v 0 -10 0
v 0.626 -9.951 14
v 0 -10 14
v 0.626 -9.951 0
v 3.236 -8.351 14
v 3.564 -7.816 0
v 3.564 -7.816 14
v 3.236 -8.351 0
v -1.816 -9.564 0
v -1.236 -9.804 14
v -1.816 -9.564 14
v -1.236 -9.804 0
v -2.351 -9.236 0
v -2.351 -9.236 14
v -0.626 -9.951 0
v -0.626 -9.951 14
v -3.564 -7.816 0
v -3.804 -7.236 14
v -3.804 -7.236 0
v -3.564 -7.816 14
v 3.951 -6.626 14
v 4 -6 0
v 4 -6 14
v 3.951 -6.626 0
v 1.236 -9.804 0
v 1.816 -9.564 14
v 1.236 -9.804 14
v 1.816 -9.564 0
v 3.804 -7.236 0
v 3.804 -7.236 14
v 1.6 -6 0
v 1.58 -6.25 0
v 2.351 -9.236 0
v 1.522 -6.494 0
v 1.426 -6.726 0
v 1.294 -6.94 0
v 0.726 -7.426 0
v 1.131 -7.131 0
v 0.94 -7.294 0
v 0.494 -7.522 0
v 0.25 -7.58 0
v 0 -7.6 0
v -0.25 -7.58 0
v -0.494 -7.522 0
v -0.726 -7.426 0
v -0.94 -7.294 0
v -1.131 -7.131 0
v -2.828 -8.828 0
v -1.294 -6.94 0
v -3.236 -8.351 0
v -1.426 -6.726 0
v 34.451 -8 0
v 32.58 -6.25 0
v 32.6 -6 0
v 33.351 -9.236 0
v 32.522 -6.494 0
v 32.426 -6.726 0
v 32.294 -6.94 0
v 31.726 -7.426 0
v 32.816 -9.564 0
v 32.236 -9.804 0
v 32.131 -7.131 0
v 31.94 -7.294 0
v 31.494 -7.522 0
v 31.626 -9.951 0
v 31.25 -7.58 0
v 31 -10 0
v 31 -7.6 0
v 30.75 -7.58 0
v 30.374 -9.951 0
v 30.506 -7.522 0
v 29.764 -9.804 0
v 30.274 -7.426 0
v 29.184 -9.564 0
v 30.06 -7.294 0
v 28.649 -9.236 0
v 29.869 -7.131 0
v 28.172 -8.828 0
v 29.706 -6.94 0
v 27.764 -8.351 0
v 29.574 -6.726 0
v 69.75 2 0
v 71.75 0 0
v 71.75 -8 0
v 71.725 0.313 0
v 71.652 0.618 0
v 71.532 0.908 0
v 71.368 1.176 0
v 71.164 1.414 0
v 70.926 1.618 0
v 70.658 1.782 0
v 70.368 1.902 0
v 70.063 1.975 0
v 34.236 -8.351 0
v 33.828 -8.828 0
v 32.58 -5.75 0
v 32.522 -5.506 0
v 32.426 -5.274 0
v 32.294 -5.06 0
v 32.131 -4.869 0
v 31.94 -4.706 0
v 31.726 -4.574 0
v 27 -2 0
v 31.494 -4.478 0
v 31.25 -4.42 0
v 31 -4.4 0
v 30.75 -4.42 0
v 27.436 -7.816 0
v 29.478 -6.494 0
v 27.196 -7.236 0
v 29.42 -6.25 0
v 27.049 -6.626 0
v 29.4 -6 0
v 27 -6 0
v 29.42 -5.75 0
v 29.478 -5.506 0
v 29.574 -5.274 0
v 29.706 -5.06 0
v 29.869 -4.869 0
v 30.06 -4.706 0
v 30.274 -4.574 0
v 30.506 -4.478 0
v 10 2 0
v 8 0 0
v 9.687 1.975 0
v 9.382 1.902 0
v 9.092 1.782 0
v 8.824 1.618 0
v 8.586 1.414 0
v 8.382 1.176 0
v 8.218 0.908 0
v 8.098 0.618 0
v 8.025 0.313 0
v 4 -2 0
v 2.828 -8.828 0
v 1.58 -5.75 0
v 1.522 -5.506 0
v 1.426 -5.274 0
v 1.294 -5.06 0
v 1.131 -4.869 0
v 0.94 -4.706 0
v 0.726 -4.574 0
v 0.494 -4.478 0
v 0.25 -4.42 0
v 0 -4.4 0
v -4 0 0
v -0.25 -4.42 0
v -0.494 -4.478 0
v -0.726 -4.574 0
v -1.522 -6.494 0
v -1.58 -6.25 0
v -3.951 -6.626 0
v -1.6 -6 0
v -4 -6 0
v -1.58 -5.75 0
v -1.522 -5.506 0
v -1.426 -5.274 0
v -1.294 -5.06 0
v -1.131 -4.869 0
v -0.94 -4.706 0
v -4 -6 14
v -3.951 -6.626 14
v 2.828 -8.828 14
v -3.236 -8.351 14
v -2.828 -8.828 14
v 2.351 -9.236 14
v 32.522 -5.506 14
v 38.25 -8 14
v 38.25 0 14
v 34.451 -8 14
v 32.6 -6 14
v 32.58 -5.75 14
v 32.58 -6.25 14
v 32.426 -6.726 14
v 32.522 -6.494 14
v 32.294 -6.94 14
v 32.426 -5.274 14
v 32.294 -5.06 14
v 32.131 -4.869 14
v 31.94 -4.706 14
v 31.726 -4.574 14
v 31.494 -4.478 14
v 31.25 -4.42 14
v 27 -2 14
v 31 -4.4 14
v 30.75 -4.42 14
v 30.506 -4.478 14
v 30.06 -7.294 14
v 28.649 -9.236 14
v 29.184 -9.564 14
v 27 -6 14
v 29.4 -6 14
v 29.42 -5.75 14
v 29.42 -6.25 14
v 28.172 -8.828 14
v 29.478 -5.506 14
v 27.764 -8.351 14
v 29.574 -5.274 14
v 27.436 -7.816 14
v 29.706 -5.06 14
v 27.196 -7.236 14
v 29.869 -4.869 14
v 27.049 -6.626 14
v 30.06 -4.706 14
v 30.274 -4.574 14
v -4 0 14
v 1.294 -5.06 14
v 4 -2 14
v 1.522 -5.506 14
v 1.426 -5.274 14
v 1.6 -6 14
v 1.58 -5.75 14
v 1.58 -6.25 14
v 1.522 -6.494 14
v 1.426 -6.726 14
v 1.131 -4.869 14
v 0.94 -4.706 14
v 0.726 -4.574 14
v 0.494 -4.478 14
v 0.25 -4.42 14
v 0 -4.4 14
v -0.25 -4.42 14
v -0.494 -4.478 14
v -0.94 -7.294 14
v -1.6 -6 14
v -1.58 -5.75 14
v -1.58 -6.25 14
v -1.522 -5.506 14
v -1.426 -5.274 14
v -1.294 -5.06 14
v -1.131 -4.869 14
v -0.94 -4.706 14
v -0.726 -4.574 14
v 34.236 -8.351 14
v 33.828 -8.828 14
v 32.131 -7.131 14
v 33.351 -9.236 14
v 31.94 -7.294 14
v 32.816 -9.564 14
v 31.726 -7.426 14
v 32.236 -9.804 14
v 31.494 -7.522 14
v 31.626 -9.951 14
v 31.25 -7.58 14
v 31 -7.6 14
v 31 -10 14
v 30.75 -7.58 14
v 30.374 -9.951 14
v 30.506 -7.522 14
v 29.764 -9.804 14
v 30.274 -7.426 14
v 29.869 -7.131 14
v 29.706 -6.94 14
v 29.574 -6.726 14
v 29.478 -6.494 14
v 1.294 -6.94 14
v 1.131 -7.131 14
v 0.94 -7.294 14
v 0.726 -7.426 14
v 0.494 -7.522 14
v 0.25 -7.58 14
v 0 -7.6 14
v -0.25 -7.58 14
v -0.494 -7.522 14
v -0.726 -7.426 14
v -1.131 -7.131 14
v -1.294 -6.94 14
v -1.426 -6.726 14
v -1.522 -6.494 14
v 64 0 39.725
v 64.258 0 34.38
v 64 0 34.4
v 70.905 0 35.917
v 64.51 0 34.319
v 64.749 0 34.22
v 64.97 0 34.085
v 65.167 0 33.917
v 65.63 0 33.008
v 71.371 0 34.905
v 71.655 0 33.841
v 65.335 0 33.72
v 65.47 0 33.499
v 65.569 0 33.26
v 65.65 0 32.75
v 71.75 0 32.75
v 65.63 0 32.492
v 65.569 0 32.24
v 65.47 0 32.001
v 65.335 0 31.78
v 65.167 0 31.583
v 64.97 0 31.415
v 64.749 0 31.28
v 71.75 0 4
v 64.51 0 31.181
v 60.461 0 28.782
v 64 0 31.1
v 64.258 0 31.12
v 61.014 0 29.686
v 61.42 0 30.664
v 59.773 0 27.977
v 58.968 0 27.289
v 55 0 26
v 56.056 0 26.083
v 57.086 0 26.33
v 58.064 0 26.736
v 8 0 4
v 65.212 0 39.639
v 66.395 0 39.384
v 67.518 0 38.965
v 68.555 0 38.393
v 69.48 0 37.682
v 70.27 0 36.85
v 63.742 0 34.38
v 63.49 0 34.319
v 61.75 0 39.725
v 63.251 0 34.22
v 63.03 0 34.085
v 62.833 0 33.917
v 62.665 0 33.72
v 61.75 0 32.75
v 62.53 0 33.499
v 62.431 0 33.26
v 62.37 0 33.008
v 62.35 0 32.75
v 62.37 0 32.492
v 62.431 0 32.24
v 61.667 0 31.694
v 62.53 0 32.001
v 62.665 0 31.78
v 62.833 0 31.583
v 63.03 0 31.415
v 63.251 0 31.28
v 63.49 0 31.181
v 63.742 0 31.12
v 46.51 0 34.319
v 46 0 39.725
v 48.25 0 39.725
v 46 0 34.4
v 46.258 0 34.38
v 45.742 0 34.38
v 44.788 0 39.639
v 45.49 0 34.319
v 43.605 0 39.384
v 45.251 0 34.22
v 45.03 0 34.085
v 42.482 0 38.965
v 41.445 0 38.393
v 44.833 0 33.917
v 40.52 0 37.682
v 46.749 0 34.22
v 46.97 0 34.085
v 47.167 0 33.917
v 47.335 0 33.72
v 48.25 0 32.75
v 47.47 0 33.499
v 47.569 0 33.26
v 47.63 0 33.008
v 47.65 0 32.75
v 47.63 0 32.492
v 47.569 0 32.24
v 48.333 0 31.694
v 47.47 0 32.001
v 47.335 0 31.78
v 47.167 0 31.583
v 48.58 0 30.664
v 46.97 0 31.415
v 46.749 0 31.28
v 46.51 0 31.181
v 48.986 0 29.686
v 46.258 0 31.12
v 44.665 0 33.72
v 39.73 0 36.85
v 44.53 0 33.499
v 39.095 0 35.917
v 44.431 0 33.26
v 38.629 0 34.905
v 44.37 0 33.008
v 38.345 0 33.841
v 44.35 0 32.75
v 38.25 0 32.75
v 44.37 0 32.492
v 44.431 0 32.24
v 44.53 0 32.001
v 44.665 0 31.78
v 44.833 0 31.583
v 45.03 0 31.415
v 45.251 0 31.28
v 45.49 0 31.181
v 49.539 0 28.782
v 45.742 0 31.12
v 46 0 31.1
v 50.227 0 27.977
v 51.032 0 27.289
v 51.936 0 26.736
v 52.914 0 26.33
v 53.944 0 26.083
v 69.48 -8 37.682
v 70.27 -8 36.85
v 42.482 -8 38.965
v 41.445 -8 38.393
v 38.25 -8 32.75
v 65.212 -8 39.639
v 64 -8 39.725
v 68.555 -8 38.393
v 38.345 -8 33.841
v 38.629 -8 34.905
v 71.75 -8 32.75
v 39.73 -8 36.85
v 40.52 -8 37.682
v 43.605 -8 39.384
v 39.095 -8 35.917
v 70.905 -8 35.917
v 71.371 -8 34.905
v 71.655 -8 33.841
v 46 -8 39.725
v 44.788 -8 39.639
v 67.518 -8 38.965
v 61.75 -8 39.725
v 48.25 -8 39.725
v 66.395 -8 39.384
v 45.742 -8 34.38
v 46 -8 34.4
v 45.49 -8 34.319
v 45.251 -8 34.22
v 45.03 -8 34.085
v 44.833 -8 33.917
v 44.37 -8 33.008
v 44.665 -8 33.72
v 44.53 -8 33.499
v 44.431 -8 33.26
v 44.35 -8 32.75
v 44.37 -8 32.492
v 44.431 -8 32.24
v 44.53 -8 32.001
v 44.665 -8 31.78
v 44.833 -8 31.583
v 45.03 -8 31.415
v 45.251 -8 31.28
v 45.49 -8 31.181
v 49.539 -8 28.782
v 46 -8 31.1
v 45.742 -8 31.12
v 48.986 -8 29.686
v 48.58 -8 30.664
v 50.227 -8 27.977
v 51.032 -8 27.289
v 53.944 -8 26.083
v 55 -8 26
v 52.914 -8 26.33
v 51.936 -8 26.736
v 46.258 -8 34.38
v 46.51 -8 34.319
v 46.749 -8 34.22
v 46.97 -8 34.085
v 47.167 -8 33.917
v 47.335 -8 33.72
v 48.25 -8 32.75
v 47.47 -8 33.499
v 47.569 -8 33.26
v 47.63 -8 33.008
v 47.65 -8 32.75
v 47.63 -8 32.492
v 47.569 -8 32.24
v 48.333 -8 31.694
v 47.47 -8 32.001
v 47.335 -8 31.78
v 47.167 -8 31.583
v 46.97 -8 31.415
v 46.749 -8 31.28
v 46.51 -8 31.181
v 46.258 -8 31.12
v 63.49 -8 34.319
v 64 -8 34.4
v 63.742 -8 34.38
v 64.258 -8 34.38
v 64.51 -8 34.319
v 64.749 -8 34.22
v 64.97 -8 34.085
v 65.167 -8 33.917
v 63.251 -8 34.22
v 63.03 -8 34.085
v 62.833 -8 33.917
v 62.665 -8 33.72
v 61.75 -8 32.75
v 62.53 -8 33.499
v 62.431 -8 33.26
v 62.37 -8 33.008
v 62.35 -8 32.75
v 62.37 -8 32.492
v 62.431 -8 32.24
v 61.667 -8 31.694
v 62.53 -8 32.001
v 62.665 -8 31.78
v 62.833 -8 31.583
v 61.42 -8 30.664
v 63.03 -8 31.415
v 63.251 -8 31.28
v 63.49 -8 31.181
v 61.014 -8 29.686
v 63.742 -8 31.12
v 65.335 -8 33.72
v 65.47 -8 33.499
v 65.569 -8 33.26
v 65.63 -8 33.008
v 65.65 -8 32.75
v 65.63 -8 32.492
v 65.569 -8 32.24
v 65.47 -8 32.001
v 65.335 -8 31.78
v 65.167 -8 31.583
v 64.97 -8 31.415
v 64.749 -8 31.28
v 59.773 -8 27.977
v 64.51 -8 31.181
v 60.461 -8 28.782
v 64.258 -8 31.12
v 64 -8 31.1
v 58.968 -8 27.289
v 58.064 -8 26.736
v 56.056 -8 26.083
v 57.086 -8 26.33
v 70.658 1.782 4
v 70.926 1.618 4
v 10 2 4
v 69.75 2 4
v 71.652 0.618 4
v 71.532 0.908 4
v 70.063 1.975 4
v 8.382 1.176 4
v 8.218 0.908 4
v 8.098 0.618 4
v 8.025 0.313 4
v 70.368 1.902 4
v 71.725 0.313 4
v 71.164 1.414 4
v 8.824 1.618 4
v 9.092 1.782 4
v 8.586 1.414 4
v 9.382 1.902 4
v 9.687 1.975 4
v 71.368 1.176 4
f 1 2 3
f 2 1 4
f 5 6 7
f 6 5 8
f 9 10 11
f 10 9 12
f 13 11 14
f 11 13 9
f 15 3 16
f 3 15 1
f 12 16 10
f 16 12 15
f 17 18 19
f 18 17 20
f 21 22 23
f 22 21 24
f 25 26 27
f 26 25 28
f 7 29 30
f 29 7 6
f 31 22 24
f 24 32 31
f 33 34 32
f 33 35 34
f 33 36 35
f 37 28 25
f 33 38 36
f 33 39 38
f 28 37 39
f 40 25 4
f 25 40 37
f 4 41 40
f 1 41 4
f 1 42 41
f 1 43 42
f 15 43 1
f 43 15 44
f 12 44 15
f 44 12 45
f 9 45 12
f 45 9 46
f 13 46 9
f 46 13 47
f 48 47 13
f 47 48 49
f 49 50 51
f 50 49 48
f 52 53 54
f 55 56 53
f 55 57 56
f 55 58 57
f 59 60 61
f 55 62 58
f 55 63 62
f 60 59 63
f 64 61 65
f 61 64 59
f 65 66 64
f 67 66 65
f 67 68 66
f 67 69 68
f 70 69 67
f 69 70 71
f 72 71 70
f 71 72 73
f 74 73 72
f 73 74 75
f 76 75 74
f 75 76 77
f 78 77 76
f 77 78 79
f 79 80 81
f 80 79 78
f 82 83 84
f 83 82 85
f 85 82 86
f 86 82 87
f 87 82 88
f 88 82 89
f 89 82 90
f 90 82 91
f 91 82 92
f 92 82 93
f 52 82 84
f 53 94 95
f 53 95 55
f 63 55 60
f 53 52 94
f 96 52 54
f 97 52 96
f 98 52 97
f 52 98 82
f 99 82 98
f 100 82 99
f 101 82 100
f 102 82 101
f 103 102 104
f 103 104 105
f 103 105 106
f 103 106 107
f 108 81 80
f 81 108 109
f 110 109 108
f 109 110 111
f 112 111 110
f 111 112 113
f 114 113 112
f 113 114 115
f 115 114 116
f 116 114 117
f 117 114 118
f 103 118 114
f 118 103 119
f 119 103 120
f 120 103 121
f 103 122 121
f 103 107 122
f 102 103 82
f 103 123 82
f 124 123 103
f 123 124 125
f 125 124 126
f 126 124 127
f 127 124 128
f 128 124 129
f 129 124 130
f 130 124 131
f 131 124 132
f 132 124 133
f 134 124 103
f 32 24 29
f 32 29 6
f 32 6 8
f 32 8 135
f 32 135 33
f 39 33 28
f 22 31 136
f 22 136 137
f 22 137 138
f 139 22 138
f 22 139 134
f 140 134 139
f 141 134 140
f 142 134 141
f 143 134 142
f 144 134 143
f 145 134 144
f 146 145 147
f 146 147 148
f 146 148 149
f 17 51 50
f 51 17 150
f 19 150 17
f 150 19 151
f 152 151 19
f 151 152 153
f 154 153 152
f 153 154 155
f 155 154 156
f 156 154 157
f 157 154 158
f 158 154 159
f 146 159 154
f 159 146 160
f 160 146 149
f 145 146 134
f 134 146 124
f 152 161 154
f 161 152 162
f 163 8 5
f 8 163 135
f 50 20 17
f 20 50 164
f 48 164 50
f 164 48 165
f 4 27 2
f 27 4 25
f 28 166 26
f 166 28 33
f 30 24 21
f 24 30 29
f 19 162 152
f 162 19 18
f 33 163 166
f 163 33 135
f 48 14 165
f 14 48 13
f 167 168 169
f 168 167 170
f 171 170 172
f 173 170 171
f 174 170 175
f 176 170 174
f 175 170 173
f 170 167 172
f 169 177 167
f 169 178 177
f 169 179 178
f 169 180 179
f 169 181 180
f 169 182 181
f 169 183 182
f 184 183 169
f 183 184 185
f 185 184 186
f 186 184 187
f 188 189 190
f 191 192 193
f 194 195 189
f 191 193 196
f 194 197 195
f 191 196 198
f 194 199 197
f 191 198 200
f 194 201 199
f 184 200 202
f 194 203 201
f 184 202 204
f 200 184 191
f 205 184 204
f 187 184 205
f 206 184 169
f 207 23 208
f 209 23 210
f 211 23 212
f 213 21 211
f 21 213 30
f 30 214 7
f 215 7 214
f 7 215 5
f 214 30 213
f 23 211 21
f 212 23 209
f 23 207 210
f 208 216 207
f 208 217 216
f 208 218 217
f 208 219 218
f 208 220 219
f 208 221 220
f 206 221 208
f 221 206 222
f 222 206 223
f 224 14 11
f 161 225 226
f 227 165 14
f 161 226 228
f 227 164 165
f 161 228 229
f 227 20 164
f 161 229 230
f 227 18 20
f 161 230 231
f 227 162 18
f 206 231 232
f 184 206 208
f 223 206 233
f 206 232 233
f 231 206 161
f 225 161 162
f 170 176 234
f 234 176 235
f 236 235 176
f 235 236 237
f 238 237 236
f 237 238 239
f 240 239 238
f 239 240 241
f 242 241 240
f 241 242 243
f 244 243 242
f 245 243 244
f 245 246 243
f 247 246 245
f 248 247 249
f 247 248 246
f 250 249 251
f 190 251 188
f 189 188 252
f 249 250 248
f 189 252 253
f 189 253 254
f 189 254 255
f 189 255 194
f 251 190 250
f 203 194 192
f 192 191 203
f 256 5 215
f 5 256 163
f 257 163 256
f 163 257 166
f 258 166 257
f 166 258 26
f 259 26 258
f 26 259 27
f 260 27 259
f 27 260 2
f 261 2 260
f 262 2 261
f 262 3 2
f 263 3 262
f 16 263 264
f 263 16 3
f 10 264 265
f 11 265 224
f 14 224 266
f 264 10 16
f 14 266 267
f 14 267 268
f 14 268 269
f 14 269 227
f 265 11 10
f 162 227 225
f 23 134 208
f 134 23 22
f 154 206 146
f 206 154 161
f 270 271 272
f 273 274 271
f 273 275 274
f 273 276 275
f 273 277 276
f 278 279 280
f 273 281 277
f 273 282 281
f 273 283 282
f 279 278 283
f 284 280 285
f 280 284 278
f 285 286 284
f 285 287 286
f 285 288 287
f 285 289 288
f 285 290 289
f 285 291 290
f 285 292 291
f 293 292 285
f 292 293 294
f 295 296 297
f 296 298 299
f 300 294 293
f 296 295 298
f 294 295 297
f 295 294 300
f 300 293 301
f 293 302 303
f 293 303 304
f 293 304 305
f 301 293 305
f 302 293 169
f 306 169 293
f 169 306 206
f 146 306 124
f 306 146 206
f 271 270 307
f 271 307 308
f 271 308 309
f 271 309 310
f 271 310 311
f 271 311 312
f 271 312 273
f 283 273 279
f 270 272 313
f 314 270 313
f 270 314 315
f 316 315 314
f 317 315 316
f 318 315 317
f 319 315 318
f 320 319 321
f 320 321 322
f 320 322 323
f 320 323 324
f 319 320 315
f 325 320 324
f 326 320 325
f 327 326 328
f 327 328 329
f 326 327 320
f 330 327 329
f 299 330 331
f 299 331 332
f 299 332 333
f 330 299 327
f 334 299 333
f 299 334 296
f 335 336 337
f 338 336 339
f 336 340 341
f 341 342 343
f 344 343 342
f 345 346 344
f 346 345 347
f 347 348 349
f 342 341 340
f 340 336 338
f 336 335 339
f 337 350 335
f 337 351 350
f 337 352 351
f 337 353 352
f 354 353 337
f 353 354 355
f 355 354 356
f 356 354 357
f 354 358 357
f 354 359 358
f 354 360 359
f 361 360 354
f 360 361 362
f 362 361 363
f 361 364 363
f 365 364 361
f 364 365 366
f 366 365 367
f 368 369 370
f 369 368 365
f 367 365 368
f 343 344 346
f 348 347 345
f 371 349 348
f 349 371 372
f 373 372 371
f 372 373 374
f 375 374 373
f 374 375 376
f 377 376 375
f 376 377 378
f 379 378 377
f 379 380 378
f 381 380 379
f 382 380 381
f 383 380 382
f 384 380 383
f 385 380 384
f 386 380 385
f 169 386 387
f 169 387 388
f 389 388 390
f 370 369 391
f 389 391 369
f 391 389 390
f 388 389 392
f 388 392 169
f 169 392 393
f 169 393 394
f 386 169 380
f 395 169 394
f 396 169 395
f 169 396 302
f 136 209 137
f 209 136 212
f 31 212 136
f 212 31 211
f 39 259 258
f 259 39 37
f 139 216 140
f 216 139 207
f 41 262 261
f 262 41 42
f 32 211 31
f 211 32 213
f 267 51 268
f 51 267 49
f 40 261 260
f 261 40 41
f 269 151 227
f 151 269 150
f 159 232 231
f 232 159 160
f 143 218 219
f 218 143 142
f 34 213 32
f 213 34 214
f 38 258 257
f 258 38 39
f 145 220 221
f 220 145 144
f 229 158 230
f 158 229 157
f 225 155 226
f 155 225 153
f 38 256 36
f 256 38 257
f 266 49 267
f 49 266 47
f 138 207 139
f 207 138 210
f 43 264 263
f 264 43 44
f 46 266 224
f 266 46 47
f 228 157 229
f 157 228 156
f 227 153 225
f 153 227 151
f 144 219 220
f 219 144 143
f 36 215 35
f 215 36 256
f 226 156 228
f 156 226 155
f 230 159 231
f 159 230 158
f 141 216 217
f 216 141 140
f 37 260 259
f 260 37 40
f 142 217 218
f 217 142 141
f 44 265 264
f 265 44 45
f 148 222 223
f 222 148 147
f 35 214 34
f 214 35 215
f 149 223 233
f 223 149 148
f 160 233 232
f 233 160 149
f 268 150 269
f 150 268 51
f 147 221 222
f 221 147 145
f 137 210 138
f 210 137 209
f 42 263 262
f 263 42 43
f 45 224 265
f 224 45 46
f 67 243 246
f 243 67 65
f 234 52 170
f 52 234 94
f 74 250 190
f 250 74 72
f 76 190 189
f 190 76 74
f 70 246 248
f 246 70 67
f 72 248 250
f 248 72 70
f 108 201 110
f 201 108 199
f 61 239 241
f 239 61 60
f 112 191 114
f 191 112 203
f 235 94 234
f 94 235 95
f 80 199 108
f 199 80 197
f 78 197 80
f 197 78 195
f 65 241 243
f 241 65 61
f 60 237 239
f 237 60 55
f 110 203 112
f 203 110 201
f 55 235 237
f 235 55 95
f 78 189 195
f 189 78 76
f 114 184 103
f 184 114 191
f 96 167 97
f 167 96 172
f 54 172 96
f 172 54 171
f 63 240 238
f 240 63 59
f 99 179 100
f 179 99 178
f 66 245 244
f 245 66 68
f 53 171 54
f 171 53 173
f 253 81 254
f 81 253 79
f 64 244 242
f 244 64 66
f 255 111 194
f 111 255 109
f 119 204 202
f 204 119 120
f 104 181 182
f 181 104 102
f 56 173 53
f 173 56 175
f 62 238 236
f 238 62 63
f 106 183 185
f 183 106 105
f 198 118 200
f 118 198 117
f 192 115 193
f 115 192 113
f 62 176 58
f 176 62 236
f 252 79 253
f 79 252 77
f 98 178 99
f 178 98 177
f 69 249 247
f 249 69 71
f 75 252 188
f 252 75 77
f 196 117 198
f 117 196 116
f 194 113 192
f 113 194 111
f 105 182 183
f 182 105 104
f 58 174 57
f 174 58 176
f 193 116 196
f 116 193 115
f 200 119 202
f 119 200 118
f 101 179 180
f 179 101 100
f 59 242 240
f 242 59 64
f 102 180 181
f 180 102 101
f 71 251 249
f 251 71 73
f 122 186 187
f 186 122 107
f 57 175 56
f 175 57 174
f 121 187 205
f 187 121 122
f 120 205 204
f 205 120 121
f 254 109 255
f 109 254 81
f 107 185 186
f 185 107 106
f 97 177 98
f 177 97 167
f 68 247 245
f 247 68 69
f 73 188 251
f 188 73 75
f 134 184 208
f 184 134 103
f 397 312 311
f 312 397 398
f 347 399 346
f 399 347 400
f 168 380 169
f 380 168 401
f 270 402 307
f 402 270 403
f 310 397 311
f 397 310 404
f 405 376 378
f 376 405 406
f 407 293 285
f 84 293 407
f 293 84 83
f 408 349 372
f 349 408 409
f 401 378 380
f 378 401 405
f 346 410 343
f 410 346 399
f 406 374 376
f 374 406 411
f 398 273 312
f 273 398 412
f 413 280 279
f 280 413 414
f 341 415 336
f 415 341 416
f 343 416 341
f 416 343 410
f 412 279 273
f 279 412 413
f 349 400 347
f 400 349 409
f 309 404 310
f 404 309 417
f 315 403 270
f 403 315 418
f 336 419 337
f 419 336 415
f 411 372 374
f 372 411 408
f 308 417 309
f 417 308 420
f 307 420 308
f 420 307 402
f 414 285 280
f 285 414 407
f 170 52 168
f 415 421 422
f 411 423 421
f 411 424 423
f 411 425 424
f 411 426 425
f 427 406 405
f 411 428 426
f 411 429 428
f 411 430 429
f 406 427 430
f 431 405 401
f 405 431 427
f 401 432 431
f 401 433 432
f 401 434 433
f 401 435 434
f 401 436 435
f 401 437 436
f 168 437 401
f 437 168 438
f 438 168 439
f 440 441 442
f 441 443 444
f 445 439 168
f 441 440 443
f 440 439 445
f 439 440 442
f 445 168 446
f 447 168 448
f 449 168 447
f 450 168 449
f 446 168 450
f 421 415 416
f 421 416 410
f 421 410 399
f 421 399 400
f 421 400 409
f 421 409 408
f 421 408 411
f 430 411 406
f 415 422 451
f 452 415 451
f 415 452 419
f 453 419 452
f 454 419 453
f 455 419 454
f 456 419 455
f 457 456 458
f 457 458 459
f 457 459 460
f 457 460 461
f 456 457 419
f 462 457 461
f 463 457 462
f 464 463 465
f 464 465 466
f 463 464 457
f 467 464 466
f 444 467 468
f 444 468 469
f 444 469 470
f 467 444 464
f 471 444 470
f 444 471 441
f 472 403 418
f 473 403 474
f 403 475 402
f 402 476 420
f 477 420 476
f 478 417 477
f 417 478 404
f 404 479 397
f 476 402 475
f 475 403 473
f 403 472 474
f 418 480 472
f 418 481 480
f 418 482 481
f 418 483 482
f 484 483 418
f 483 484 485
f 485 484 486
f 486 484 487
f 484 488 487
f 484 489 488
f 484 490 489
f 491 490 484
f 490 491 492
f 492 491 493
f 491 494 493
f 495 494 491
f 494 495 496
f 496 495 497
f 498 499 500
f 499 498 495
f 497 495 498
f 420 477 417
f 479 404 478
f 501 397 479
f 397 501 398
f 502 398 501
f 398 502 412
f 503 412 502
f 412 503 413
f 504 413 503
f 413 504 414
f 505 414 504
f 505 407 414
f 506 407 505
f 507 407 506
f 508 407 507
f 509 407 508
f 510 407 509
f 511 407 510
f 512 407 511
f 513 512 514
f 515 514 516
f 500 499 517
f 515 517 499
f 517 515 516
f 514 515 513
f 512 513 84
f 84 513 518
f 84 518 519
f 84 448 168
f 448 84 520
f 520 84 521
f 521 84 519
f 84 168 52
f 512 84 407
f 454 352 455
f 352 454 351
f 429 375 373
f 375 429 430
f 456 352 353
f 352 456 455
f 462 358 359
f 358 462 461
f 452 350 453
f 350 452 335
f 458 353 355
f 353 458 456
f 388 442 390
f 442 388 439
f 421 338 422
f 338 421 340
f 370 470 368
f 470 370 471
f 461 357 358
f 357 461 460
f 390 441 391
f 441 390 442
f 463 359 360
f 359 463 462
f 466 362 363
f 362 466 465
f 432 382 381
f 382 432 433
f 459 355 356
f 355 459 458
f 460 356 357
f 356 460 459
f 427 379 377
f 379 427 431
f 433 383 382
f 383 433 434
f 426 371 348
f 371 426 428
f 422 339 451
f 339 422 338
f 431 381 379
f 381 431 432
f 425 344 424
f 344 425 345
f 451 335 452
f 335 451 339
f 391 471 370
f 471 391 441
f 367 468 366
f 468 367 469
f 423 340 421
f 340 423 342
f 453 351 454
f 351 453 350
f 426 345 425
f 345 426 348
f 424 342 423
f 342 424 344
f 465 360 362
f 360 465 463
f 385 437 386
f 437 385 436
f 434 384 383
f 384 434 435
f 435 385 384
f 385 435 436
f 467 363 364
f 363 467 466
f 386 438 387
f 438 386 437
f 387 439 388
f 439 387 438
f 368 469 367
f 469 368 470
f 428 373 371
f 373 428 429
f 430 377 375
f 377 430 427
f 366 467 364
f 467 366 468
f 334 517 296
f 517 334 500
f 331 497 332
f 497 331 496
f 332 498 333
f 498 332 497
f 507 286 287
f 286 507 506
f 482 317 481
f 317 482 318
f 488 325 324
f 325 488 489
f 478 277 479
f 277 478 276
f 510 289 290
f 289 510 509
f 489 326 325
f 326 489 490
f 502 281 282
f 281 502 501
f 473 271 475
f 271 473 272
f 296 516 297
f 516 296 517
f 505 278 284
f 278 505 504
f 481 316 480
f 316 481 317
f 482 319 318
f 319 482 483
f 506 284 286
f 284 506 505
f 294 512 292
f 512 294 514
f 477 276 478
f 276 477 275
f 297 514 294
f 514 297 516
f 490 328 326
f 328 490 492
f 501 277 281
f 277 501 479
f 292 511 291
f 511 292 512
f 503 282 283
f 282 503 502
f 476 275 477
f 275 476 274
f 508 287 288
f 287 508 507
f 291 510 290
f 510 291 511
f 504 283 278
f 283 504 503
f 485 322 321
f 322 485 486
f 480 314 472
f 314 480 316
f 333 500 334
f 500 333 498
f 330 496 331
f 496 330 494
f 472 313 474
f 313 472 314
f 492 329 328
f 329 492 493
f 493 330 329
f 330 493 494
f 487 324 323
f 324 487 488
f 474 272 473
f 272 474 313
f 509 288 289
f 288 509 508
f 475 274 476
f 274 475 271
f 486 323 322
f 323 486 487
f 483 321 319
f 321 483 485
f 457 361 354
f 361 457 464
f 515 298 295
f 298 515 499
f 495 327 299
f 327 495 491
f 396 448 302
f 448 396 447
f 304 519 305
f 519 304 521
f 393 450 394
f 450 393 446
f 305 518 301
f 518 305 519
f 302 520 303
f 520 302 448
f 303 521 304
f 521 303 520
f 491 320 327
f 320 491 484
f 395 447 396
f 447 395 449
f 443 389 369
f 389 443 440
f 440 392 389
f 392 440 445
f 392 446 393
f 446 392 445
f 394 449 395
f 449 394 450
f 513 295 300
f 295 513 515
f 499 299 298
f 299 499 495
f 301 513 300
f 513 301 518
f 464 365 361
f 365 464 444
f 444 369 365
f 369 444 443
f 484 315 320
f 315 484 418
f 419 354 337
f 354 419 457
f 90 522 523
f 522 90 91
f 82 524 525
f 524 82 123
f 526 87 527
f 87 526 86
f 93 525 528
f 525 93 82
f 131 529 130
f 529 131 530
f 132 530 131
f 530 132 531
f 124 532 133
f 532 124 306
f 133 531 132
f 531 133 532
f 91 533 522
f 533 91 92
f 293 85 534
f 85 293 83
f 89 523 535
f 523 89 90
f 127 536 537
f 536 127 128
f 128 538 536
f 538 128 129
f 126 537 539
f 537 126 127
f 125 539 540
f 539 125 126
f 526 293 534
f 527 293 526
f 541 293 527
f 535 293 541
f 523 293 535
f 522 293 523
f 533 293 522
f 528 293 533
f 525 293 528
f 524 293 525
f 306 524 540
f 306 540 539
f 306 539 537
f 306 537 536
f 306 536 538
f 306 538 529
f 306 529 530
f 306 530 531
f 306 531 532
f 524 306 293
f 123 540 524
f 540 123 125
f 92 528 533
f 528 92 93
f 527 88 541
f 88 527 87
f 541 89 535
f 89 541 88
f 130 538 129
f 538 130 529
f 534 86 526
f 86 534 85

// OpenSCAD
spacerLen      = 14;
spacerDia      = 8;
spacerDist     = 31;
spacerHt       = 6;
spacerBarHt    = 2;
spacerBarThick = 4;

blTouchDist    = 18;
blTouchDia     = 13.5;
blTouchHt      = 8;

blTouchMountOffX = 46;
blTouchMountOffY = 26+blTouchDia/2+0;

$fn=40;

complete();

module complete() {
   heatsinkSpacer();
   translate([blTouchMountOffX,0,0])
      rotate([90,0,0]) blTouchMount();

   diffX = blTouchMountOffX - (spacerDist+spacerDia/2);
   translate([spacerDist+spacerDia/2-1,-blTouchHt,0])
      cube([diffX+2,blTouchHt,spacerLen]);

   hull() {
      translate([10,0,0]) cylinder(r=spacerBarHt,h=4);
      translate([blTouchMountOffX+blTouchDist+blTouchDia/2-1,0,0]) cylinder(r=spacerBarHt,h=4);
   }
}

module blTouchMount() {
   translate([0,blTouchMountOffY,0]) difference() {
      union() {
         hull() {
            scale([1,0.9,1]) cylinder(d=blTouchDia+2,h=blTouchHt);
            translate([blTouchDist,0,0]) scale([1,0.9,1])
               cylinder(d=blTouchDia+2,h=blTouchHt);

            translate([-(blTouchDia+2)/2,-blTouchMountOffY,0])
               cube([blTouchDist+blTouchDia+2,blTouchMountOffY,blTouchHt]);
         }
      }
      translate([0,0,-1]) cylinder(d=3.3,h=blTouchHt+2);
      translate([blTouchDist,0,-1]) cylinder(d=3.3,h=blTouchHt+2);
      translate([blTouchDist/2,0,-1]) cylinder(d=blTouchDia,h=blTouchHt+2);
      translate([blTouchDist/2-blTouchDia/2,0,-1])
         cube([blTouchDia,blTouchDia,blTouchHt+2]);
   }
}

module heatsinkSpacer() {
   difference() {
      union() {
         singleSpacer();
         translate([spacerDist,0,0]) singleSpacer();
         translate([-spacerDia/2,-spacerBarHt,0])
            cube([spacerDist+spacerDia, spacerBarHt, spacerLen]);
      }
   }
}

module singleSpacer() {
   difference() {
      union() {
         translate([0,-spacerHt,0]) cylinder(d=spacerDia, h=spacerLen);
         translate([-spacerDia/2,-spacerHt,0])
            cube([spacerDia,spacerHt, spacerLen]);
      }
      translate([0,-spacerHt,-1]) cylinder(d=3.2, h=spacerLen+2);
   }
}

if (0) {
cylinder(d=spacerDia, h=spacerLen);
translate([spacerDist,0,0]) cylinder(d=spacerDia, h=spacerLen);
translate([-spacerDia/2,0,0]) cube([spacerDist+spacerDia/2+15,spacerDia/2,spacerLen]);
translate([spacerDist+15-7,0,0]) cube([7,spacerDia/2,spacerLen+20]);
translate([15,0,20]) cube([spacerDist,spacerDia/2,spacerLen]);
translate([15,0,20+spacerLen/2]) rotate([-90,0,0]) cylinder(d=spacerLen, h=spacerDia/2);
}
